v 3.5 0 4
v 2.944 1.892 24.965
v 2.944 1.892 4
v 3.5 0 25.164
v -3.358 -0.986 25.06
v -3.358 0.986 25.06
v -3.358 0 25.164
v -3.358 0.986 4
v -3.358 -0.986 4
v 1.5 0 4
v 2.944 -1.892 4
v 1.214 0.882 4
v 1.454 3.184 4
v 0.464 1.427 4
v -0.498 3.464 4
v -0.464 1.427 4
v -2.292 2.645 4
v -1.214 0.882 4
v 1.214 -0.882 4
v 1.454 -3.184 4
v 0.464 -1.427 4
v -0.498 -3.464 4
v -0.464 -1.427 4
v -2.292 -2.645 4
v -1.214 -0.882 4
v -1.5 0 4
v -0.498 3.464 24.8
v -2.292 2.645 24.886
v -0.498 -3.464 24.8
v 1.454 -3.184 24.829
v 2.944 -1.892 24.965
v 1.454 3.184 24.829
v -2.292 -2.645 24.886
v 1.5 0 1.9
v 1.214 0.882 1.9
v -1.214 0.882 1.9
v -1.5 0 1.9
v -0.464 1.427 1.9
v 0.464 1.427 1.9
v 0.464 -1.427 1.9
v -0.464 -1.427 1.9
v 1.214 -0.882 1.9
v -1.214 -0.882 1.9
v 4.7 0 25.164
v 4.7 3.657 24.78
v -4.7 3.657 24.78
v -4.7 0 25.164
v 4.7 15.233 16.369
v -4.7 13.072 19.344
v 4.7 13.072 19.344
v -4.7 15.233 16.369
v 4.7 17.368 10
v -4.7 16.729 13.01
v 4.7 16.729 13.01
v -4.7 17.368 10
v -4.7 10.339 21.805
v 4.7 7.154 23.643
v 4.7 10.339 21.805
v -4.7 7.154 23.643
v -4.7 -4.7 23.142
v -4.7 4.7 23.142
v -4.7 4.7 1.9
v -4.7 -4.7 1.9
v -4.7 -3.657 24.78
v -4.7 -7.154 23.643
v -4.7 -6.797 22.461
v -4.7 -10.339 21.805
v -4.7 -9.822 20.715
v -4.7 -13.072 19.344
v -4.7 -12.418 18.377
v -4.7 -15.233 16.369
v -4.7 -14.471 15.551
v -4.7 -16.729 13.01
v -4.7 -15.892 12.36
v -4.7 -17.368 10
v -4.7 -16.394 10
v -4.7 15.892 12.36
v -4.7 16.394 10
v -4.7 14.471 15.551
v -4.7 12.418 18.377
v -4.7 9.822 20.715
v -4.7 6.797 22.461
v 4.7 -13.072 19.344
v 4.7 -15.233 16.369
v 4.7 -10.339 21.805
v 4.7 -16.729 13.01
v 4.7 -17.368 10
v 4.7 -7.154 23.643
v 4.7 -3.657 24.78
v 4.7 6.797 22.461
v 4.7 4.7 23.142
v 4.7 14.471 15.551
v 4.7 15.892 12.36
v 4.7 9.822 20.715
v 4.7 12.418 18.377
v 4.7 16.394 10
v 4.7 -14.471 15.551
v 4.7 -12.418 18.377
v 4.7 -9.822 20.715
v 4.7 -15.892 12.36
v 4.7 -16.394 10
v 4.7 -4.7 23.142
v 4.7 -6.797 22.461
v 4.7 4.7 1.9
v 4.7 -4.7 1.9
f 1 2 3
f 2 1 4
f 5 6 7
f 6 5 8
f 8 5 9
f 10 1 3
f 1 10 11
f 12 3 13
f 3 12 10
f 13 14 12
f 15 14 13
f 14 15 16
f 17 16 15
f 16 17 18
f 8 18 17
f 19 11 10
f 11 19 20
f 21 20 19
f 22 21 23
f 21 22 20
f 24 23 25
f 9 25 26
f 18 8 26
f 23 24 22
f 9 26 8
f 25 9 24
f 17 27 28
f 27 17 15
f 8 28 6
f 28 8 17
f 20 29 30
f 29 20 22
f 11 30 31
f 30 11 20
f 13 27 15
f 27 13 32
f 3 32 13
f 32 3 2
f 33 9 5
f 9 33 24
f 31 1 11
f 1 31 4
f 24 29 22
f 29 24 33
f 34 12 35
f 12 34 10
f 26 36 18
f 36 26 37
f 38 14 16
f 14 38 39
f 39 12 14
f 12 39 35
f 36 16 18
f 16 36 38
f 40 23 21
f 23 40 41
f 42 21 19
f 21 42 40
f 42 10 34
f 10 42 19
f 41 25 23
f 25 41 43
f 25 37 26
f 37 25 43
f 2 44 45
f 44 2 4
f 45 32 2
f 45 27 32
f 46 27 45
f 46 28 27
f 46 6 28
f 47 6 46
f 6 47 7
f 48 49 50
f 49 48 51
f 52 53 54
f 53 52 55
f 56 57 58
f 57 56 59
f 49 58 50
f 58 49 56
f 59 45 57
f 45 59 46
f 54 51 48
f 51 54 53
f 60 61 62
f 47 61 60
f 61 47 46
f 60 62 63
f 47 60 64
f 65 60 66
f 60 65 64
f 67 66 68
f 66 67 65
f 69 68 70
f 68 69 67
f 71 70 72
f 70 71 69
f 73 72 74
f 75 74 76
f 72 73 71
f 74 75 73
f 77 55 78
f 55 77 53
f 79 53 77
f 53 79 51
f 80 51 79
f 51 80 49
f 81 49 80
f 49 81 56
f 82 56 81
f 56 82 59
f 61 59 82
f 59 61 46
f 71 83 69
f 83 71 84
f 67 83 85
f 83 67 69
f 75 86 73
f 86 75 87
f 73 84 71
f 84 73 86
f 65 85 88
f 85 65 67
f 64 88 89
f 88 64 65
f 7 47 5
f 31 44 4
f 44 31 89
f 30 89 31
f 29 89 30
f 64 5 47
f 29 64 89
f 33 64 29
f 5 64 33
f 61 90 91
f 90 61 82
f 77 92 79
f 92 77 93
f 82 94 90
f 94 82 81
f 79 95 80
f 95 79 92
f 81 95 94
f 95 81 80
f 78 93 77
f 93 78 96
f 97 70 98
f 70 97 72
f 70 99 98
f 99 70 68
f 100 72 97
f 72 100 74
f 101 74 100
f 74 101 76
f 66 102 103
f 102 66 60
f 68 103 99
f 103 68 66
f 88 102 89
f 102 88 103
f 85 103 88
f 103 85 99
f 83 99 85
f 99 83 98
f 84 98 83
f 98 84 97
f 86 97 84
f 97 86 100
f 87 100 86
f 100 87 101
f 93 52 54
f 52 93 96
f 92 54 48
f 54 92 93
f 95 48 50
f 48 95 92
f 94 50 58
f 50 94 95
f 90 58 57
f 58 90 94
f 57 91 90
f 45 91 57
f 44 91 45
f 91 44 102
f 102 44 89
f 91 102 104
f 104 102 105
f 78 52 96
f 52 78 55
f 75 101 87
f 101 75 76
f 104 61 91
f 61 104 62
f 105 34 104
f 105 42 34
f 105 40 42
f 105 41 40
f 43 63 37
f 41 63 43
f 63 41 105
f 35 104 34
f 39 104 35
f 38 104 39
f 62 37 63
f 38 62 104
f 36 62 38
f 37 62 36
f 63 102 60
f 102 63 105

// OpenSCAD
// file: common.scad
// units are in mm in keeping with OpenSCAD STL export behavior
// multiplying a dimension in inches by the `inch` variable
// produces the equivalent dimension in mm
inch = 25.4;

thick = 0.6; // 3D printer layer height / line thickness. This should not be changed.

// ABS pipe standard dimensions for nominal 1.25 inch pipe
// diameters
pipe_OD = 1.660 * inch;
pipe_ID = 1.385 * inch;
// radii
pipe_OR = pipe_OD/2;
pipe_IR = pipe_ID/2;

// PCB dimensions and mounting hole spacing
PCBX = 6.400 * inch;
PCBY = 1.250 * inch;
PCBZ = 1.6; // thickness, confirm with PCB fab service
mount_hole_spacing = 0.500 * inch;
mount_hole_start = 0.250 * inch;

// to facilitate 3D printing the skeleton for a single T-Stick
// is broken into several parts, which I here refer to as "modules"
skeleton_module_length = 6 * inch;
skeleton_face_thickness = 3 * thick; // 1.8mm
connector_thickness = 3 * thick; // 1.8mm
connector_width = 15;
connector_length = skeleton_module_length*2/3;
// right angle triangle with base PCBY/2 and hypotenuse pipe_IR has height...
cylinder_top_cut_height_offset = sqrt(pipe_IR*pipe_IR - (PCBY/2)*(PCBY/2));
skeleton_module_total_thickness = pipe_IR - cylinder_top_cut_height_offset;

// hardware
// these should probably be oversized or parameterized
// to allow press fit vs loose fit
M3_hole_diameter = 3;
M3_hole_diameter_loose = 3.3;
M3_nut_height = 2.4;
M3_head_diameter = 7;
M3_head_height = 3;
M3_nut_circumcircle_diameter = 6;
heatshrink_thickness = 5/8;

module M3_nut_volume(rotation=0, scaling=1)
{
    scale([scaling, scaling, scaling]) rotate([0,0,rotation])
        cylinder(h = M3_nut_height, d = M3_nut_circumcircle_diameter, $fn=6);
}

module pipe_volume(radius, length=skeleton_module_length)
{
    translate([0,0,cylinder_top_cut_height_offset])
            rotate([0,90,0])
                cylinder(h = length, r = radius);
}

module pipe_ID_volume(length=skeleton_module_length)
{
    pipe_volume(pipe_IR, length);
}

module pipe_OD_volume(length=skeleton_module_length)
{
    pipe_volume(pipe_OR, length);
}

module pipe_top_area()
{
    translate([-500,-500,0])
        cube([1000,1000,1000]);
}

module skeleton_module_volume(length=skeleton_module_length)
{
    skeleton_fit_shrink = 0.4; // so that the skeleton fits flush inside the pipe
    difference()
    {
        pipe_volume(pipe_IR-skeleton_fit_shrink, length);
        pipe_top_area();
    }
}

module screw_holes(diameter=M3_hole_diameter)
{
    union()
    {
        for(x = [mount_hole_start : mount_hole_spacing : skeleton_module_length - 1])
        {
            translate([x, 0, -500])
                cylinder(h = 1000, d = diameter, $fn=20);
        }
    }
}

axial_screw_hole_offset = cylinder_top_cut_height_offset-pipe_ID/2+M3_head_diameter/2;
module axial_screw_hole(diameter=M3_hole_diameter, length=1000, center=true, xoffset=0)
{
    translate([xoffset,0,axial_screw_hole_offset])
        rotate([0,90,0])
            cylinder(length, r=diameter/2, $fn=20, center=center);
}

module top_axial()
{
    translate([0,0,cylinder_top_cut_height_offset])
        rotate([180,0,0])
            translate([0,0,-cylinder_top_cut_height_offset])
                children();
}
// main file
include <common.scad>

stabilizer_min_wall = 4*thick;
stabilizer_thickness = M3_head_diameter+stabilizer_min_wall;
stabilizer_pcb_clearance = 10;

module spring_ring()
{
    difference()
    {
        pipe_ID_volume();
        scale([1,0.95,0.95]) pipe_ID_volume();
    }
}

module column()
{
     translate([-stabilizer_thickness/2,0,0]) intersection()
    {
        translate([0,-stabilizer_thickness/2,PCBZ+0.3])
            cube([stabilizer_thickness, stabilizer_thickness, 1000]);
        pipe_ID_volume();
    }
}

module spring_leaf()
{
    translate([-stabilizer_thickness/2,0,0]) intersection()
    {
        spring_ring();
        translate([0,-500,stabilizer_pcb_clearance])
            cube([stabilizer_thickness,1000,1000]);
    }
}

module column_screw_hole()
{
    union()
    {
        cylinder(h = 1000, d = M3_hole_diameter, $fn=10);
        translate([0,0,stabilizer_min_wall+PCBZ]) intersection()
        {
            cylinder(h = 1000, d = M3_head_diameter);
            pipe_top_area();
        }
    }
}

module stabilizer()
{
    difference()
    {
        union()
        {
            spring_leaf();
            column();
        }
        column_screw_hole();
    }
}

stabilizer();
